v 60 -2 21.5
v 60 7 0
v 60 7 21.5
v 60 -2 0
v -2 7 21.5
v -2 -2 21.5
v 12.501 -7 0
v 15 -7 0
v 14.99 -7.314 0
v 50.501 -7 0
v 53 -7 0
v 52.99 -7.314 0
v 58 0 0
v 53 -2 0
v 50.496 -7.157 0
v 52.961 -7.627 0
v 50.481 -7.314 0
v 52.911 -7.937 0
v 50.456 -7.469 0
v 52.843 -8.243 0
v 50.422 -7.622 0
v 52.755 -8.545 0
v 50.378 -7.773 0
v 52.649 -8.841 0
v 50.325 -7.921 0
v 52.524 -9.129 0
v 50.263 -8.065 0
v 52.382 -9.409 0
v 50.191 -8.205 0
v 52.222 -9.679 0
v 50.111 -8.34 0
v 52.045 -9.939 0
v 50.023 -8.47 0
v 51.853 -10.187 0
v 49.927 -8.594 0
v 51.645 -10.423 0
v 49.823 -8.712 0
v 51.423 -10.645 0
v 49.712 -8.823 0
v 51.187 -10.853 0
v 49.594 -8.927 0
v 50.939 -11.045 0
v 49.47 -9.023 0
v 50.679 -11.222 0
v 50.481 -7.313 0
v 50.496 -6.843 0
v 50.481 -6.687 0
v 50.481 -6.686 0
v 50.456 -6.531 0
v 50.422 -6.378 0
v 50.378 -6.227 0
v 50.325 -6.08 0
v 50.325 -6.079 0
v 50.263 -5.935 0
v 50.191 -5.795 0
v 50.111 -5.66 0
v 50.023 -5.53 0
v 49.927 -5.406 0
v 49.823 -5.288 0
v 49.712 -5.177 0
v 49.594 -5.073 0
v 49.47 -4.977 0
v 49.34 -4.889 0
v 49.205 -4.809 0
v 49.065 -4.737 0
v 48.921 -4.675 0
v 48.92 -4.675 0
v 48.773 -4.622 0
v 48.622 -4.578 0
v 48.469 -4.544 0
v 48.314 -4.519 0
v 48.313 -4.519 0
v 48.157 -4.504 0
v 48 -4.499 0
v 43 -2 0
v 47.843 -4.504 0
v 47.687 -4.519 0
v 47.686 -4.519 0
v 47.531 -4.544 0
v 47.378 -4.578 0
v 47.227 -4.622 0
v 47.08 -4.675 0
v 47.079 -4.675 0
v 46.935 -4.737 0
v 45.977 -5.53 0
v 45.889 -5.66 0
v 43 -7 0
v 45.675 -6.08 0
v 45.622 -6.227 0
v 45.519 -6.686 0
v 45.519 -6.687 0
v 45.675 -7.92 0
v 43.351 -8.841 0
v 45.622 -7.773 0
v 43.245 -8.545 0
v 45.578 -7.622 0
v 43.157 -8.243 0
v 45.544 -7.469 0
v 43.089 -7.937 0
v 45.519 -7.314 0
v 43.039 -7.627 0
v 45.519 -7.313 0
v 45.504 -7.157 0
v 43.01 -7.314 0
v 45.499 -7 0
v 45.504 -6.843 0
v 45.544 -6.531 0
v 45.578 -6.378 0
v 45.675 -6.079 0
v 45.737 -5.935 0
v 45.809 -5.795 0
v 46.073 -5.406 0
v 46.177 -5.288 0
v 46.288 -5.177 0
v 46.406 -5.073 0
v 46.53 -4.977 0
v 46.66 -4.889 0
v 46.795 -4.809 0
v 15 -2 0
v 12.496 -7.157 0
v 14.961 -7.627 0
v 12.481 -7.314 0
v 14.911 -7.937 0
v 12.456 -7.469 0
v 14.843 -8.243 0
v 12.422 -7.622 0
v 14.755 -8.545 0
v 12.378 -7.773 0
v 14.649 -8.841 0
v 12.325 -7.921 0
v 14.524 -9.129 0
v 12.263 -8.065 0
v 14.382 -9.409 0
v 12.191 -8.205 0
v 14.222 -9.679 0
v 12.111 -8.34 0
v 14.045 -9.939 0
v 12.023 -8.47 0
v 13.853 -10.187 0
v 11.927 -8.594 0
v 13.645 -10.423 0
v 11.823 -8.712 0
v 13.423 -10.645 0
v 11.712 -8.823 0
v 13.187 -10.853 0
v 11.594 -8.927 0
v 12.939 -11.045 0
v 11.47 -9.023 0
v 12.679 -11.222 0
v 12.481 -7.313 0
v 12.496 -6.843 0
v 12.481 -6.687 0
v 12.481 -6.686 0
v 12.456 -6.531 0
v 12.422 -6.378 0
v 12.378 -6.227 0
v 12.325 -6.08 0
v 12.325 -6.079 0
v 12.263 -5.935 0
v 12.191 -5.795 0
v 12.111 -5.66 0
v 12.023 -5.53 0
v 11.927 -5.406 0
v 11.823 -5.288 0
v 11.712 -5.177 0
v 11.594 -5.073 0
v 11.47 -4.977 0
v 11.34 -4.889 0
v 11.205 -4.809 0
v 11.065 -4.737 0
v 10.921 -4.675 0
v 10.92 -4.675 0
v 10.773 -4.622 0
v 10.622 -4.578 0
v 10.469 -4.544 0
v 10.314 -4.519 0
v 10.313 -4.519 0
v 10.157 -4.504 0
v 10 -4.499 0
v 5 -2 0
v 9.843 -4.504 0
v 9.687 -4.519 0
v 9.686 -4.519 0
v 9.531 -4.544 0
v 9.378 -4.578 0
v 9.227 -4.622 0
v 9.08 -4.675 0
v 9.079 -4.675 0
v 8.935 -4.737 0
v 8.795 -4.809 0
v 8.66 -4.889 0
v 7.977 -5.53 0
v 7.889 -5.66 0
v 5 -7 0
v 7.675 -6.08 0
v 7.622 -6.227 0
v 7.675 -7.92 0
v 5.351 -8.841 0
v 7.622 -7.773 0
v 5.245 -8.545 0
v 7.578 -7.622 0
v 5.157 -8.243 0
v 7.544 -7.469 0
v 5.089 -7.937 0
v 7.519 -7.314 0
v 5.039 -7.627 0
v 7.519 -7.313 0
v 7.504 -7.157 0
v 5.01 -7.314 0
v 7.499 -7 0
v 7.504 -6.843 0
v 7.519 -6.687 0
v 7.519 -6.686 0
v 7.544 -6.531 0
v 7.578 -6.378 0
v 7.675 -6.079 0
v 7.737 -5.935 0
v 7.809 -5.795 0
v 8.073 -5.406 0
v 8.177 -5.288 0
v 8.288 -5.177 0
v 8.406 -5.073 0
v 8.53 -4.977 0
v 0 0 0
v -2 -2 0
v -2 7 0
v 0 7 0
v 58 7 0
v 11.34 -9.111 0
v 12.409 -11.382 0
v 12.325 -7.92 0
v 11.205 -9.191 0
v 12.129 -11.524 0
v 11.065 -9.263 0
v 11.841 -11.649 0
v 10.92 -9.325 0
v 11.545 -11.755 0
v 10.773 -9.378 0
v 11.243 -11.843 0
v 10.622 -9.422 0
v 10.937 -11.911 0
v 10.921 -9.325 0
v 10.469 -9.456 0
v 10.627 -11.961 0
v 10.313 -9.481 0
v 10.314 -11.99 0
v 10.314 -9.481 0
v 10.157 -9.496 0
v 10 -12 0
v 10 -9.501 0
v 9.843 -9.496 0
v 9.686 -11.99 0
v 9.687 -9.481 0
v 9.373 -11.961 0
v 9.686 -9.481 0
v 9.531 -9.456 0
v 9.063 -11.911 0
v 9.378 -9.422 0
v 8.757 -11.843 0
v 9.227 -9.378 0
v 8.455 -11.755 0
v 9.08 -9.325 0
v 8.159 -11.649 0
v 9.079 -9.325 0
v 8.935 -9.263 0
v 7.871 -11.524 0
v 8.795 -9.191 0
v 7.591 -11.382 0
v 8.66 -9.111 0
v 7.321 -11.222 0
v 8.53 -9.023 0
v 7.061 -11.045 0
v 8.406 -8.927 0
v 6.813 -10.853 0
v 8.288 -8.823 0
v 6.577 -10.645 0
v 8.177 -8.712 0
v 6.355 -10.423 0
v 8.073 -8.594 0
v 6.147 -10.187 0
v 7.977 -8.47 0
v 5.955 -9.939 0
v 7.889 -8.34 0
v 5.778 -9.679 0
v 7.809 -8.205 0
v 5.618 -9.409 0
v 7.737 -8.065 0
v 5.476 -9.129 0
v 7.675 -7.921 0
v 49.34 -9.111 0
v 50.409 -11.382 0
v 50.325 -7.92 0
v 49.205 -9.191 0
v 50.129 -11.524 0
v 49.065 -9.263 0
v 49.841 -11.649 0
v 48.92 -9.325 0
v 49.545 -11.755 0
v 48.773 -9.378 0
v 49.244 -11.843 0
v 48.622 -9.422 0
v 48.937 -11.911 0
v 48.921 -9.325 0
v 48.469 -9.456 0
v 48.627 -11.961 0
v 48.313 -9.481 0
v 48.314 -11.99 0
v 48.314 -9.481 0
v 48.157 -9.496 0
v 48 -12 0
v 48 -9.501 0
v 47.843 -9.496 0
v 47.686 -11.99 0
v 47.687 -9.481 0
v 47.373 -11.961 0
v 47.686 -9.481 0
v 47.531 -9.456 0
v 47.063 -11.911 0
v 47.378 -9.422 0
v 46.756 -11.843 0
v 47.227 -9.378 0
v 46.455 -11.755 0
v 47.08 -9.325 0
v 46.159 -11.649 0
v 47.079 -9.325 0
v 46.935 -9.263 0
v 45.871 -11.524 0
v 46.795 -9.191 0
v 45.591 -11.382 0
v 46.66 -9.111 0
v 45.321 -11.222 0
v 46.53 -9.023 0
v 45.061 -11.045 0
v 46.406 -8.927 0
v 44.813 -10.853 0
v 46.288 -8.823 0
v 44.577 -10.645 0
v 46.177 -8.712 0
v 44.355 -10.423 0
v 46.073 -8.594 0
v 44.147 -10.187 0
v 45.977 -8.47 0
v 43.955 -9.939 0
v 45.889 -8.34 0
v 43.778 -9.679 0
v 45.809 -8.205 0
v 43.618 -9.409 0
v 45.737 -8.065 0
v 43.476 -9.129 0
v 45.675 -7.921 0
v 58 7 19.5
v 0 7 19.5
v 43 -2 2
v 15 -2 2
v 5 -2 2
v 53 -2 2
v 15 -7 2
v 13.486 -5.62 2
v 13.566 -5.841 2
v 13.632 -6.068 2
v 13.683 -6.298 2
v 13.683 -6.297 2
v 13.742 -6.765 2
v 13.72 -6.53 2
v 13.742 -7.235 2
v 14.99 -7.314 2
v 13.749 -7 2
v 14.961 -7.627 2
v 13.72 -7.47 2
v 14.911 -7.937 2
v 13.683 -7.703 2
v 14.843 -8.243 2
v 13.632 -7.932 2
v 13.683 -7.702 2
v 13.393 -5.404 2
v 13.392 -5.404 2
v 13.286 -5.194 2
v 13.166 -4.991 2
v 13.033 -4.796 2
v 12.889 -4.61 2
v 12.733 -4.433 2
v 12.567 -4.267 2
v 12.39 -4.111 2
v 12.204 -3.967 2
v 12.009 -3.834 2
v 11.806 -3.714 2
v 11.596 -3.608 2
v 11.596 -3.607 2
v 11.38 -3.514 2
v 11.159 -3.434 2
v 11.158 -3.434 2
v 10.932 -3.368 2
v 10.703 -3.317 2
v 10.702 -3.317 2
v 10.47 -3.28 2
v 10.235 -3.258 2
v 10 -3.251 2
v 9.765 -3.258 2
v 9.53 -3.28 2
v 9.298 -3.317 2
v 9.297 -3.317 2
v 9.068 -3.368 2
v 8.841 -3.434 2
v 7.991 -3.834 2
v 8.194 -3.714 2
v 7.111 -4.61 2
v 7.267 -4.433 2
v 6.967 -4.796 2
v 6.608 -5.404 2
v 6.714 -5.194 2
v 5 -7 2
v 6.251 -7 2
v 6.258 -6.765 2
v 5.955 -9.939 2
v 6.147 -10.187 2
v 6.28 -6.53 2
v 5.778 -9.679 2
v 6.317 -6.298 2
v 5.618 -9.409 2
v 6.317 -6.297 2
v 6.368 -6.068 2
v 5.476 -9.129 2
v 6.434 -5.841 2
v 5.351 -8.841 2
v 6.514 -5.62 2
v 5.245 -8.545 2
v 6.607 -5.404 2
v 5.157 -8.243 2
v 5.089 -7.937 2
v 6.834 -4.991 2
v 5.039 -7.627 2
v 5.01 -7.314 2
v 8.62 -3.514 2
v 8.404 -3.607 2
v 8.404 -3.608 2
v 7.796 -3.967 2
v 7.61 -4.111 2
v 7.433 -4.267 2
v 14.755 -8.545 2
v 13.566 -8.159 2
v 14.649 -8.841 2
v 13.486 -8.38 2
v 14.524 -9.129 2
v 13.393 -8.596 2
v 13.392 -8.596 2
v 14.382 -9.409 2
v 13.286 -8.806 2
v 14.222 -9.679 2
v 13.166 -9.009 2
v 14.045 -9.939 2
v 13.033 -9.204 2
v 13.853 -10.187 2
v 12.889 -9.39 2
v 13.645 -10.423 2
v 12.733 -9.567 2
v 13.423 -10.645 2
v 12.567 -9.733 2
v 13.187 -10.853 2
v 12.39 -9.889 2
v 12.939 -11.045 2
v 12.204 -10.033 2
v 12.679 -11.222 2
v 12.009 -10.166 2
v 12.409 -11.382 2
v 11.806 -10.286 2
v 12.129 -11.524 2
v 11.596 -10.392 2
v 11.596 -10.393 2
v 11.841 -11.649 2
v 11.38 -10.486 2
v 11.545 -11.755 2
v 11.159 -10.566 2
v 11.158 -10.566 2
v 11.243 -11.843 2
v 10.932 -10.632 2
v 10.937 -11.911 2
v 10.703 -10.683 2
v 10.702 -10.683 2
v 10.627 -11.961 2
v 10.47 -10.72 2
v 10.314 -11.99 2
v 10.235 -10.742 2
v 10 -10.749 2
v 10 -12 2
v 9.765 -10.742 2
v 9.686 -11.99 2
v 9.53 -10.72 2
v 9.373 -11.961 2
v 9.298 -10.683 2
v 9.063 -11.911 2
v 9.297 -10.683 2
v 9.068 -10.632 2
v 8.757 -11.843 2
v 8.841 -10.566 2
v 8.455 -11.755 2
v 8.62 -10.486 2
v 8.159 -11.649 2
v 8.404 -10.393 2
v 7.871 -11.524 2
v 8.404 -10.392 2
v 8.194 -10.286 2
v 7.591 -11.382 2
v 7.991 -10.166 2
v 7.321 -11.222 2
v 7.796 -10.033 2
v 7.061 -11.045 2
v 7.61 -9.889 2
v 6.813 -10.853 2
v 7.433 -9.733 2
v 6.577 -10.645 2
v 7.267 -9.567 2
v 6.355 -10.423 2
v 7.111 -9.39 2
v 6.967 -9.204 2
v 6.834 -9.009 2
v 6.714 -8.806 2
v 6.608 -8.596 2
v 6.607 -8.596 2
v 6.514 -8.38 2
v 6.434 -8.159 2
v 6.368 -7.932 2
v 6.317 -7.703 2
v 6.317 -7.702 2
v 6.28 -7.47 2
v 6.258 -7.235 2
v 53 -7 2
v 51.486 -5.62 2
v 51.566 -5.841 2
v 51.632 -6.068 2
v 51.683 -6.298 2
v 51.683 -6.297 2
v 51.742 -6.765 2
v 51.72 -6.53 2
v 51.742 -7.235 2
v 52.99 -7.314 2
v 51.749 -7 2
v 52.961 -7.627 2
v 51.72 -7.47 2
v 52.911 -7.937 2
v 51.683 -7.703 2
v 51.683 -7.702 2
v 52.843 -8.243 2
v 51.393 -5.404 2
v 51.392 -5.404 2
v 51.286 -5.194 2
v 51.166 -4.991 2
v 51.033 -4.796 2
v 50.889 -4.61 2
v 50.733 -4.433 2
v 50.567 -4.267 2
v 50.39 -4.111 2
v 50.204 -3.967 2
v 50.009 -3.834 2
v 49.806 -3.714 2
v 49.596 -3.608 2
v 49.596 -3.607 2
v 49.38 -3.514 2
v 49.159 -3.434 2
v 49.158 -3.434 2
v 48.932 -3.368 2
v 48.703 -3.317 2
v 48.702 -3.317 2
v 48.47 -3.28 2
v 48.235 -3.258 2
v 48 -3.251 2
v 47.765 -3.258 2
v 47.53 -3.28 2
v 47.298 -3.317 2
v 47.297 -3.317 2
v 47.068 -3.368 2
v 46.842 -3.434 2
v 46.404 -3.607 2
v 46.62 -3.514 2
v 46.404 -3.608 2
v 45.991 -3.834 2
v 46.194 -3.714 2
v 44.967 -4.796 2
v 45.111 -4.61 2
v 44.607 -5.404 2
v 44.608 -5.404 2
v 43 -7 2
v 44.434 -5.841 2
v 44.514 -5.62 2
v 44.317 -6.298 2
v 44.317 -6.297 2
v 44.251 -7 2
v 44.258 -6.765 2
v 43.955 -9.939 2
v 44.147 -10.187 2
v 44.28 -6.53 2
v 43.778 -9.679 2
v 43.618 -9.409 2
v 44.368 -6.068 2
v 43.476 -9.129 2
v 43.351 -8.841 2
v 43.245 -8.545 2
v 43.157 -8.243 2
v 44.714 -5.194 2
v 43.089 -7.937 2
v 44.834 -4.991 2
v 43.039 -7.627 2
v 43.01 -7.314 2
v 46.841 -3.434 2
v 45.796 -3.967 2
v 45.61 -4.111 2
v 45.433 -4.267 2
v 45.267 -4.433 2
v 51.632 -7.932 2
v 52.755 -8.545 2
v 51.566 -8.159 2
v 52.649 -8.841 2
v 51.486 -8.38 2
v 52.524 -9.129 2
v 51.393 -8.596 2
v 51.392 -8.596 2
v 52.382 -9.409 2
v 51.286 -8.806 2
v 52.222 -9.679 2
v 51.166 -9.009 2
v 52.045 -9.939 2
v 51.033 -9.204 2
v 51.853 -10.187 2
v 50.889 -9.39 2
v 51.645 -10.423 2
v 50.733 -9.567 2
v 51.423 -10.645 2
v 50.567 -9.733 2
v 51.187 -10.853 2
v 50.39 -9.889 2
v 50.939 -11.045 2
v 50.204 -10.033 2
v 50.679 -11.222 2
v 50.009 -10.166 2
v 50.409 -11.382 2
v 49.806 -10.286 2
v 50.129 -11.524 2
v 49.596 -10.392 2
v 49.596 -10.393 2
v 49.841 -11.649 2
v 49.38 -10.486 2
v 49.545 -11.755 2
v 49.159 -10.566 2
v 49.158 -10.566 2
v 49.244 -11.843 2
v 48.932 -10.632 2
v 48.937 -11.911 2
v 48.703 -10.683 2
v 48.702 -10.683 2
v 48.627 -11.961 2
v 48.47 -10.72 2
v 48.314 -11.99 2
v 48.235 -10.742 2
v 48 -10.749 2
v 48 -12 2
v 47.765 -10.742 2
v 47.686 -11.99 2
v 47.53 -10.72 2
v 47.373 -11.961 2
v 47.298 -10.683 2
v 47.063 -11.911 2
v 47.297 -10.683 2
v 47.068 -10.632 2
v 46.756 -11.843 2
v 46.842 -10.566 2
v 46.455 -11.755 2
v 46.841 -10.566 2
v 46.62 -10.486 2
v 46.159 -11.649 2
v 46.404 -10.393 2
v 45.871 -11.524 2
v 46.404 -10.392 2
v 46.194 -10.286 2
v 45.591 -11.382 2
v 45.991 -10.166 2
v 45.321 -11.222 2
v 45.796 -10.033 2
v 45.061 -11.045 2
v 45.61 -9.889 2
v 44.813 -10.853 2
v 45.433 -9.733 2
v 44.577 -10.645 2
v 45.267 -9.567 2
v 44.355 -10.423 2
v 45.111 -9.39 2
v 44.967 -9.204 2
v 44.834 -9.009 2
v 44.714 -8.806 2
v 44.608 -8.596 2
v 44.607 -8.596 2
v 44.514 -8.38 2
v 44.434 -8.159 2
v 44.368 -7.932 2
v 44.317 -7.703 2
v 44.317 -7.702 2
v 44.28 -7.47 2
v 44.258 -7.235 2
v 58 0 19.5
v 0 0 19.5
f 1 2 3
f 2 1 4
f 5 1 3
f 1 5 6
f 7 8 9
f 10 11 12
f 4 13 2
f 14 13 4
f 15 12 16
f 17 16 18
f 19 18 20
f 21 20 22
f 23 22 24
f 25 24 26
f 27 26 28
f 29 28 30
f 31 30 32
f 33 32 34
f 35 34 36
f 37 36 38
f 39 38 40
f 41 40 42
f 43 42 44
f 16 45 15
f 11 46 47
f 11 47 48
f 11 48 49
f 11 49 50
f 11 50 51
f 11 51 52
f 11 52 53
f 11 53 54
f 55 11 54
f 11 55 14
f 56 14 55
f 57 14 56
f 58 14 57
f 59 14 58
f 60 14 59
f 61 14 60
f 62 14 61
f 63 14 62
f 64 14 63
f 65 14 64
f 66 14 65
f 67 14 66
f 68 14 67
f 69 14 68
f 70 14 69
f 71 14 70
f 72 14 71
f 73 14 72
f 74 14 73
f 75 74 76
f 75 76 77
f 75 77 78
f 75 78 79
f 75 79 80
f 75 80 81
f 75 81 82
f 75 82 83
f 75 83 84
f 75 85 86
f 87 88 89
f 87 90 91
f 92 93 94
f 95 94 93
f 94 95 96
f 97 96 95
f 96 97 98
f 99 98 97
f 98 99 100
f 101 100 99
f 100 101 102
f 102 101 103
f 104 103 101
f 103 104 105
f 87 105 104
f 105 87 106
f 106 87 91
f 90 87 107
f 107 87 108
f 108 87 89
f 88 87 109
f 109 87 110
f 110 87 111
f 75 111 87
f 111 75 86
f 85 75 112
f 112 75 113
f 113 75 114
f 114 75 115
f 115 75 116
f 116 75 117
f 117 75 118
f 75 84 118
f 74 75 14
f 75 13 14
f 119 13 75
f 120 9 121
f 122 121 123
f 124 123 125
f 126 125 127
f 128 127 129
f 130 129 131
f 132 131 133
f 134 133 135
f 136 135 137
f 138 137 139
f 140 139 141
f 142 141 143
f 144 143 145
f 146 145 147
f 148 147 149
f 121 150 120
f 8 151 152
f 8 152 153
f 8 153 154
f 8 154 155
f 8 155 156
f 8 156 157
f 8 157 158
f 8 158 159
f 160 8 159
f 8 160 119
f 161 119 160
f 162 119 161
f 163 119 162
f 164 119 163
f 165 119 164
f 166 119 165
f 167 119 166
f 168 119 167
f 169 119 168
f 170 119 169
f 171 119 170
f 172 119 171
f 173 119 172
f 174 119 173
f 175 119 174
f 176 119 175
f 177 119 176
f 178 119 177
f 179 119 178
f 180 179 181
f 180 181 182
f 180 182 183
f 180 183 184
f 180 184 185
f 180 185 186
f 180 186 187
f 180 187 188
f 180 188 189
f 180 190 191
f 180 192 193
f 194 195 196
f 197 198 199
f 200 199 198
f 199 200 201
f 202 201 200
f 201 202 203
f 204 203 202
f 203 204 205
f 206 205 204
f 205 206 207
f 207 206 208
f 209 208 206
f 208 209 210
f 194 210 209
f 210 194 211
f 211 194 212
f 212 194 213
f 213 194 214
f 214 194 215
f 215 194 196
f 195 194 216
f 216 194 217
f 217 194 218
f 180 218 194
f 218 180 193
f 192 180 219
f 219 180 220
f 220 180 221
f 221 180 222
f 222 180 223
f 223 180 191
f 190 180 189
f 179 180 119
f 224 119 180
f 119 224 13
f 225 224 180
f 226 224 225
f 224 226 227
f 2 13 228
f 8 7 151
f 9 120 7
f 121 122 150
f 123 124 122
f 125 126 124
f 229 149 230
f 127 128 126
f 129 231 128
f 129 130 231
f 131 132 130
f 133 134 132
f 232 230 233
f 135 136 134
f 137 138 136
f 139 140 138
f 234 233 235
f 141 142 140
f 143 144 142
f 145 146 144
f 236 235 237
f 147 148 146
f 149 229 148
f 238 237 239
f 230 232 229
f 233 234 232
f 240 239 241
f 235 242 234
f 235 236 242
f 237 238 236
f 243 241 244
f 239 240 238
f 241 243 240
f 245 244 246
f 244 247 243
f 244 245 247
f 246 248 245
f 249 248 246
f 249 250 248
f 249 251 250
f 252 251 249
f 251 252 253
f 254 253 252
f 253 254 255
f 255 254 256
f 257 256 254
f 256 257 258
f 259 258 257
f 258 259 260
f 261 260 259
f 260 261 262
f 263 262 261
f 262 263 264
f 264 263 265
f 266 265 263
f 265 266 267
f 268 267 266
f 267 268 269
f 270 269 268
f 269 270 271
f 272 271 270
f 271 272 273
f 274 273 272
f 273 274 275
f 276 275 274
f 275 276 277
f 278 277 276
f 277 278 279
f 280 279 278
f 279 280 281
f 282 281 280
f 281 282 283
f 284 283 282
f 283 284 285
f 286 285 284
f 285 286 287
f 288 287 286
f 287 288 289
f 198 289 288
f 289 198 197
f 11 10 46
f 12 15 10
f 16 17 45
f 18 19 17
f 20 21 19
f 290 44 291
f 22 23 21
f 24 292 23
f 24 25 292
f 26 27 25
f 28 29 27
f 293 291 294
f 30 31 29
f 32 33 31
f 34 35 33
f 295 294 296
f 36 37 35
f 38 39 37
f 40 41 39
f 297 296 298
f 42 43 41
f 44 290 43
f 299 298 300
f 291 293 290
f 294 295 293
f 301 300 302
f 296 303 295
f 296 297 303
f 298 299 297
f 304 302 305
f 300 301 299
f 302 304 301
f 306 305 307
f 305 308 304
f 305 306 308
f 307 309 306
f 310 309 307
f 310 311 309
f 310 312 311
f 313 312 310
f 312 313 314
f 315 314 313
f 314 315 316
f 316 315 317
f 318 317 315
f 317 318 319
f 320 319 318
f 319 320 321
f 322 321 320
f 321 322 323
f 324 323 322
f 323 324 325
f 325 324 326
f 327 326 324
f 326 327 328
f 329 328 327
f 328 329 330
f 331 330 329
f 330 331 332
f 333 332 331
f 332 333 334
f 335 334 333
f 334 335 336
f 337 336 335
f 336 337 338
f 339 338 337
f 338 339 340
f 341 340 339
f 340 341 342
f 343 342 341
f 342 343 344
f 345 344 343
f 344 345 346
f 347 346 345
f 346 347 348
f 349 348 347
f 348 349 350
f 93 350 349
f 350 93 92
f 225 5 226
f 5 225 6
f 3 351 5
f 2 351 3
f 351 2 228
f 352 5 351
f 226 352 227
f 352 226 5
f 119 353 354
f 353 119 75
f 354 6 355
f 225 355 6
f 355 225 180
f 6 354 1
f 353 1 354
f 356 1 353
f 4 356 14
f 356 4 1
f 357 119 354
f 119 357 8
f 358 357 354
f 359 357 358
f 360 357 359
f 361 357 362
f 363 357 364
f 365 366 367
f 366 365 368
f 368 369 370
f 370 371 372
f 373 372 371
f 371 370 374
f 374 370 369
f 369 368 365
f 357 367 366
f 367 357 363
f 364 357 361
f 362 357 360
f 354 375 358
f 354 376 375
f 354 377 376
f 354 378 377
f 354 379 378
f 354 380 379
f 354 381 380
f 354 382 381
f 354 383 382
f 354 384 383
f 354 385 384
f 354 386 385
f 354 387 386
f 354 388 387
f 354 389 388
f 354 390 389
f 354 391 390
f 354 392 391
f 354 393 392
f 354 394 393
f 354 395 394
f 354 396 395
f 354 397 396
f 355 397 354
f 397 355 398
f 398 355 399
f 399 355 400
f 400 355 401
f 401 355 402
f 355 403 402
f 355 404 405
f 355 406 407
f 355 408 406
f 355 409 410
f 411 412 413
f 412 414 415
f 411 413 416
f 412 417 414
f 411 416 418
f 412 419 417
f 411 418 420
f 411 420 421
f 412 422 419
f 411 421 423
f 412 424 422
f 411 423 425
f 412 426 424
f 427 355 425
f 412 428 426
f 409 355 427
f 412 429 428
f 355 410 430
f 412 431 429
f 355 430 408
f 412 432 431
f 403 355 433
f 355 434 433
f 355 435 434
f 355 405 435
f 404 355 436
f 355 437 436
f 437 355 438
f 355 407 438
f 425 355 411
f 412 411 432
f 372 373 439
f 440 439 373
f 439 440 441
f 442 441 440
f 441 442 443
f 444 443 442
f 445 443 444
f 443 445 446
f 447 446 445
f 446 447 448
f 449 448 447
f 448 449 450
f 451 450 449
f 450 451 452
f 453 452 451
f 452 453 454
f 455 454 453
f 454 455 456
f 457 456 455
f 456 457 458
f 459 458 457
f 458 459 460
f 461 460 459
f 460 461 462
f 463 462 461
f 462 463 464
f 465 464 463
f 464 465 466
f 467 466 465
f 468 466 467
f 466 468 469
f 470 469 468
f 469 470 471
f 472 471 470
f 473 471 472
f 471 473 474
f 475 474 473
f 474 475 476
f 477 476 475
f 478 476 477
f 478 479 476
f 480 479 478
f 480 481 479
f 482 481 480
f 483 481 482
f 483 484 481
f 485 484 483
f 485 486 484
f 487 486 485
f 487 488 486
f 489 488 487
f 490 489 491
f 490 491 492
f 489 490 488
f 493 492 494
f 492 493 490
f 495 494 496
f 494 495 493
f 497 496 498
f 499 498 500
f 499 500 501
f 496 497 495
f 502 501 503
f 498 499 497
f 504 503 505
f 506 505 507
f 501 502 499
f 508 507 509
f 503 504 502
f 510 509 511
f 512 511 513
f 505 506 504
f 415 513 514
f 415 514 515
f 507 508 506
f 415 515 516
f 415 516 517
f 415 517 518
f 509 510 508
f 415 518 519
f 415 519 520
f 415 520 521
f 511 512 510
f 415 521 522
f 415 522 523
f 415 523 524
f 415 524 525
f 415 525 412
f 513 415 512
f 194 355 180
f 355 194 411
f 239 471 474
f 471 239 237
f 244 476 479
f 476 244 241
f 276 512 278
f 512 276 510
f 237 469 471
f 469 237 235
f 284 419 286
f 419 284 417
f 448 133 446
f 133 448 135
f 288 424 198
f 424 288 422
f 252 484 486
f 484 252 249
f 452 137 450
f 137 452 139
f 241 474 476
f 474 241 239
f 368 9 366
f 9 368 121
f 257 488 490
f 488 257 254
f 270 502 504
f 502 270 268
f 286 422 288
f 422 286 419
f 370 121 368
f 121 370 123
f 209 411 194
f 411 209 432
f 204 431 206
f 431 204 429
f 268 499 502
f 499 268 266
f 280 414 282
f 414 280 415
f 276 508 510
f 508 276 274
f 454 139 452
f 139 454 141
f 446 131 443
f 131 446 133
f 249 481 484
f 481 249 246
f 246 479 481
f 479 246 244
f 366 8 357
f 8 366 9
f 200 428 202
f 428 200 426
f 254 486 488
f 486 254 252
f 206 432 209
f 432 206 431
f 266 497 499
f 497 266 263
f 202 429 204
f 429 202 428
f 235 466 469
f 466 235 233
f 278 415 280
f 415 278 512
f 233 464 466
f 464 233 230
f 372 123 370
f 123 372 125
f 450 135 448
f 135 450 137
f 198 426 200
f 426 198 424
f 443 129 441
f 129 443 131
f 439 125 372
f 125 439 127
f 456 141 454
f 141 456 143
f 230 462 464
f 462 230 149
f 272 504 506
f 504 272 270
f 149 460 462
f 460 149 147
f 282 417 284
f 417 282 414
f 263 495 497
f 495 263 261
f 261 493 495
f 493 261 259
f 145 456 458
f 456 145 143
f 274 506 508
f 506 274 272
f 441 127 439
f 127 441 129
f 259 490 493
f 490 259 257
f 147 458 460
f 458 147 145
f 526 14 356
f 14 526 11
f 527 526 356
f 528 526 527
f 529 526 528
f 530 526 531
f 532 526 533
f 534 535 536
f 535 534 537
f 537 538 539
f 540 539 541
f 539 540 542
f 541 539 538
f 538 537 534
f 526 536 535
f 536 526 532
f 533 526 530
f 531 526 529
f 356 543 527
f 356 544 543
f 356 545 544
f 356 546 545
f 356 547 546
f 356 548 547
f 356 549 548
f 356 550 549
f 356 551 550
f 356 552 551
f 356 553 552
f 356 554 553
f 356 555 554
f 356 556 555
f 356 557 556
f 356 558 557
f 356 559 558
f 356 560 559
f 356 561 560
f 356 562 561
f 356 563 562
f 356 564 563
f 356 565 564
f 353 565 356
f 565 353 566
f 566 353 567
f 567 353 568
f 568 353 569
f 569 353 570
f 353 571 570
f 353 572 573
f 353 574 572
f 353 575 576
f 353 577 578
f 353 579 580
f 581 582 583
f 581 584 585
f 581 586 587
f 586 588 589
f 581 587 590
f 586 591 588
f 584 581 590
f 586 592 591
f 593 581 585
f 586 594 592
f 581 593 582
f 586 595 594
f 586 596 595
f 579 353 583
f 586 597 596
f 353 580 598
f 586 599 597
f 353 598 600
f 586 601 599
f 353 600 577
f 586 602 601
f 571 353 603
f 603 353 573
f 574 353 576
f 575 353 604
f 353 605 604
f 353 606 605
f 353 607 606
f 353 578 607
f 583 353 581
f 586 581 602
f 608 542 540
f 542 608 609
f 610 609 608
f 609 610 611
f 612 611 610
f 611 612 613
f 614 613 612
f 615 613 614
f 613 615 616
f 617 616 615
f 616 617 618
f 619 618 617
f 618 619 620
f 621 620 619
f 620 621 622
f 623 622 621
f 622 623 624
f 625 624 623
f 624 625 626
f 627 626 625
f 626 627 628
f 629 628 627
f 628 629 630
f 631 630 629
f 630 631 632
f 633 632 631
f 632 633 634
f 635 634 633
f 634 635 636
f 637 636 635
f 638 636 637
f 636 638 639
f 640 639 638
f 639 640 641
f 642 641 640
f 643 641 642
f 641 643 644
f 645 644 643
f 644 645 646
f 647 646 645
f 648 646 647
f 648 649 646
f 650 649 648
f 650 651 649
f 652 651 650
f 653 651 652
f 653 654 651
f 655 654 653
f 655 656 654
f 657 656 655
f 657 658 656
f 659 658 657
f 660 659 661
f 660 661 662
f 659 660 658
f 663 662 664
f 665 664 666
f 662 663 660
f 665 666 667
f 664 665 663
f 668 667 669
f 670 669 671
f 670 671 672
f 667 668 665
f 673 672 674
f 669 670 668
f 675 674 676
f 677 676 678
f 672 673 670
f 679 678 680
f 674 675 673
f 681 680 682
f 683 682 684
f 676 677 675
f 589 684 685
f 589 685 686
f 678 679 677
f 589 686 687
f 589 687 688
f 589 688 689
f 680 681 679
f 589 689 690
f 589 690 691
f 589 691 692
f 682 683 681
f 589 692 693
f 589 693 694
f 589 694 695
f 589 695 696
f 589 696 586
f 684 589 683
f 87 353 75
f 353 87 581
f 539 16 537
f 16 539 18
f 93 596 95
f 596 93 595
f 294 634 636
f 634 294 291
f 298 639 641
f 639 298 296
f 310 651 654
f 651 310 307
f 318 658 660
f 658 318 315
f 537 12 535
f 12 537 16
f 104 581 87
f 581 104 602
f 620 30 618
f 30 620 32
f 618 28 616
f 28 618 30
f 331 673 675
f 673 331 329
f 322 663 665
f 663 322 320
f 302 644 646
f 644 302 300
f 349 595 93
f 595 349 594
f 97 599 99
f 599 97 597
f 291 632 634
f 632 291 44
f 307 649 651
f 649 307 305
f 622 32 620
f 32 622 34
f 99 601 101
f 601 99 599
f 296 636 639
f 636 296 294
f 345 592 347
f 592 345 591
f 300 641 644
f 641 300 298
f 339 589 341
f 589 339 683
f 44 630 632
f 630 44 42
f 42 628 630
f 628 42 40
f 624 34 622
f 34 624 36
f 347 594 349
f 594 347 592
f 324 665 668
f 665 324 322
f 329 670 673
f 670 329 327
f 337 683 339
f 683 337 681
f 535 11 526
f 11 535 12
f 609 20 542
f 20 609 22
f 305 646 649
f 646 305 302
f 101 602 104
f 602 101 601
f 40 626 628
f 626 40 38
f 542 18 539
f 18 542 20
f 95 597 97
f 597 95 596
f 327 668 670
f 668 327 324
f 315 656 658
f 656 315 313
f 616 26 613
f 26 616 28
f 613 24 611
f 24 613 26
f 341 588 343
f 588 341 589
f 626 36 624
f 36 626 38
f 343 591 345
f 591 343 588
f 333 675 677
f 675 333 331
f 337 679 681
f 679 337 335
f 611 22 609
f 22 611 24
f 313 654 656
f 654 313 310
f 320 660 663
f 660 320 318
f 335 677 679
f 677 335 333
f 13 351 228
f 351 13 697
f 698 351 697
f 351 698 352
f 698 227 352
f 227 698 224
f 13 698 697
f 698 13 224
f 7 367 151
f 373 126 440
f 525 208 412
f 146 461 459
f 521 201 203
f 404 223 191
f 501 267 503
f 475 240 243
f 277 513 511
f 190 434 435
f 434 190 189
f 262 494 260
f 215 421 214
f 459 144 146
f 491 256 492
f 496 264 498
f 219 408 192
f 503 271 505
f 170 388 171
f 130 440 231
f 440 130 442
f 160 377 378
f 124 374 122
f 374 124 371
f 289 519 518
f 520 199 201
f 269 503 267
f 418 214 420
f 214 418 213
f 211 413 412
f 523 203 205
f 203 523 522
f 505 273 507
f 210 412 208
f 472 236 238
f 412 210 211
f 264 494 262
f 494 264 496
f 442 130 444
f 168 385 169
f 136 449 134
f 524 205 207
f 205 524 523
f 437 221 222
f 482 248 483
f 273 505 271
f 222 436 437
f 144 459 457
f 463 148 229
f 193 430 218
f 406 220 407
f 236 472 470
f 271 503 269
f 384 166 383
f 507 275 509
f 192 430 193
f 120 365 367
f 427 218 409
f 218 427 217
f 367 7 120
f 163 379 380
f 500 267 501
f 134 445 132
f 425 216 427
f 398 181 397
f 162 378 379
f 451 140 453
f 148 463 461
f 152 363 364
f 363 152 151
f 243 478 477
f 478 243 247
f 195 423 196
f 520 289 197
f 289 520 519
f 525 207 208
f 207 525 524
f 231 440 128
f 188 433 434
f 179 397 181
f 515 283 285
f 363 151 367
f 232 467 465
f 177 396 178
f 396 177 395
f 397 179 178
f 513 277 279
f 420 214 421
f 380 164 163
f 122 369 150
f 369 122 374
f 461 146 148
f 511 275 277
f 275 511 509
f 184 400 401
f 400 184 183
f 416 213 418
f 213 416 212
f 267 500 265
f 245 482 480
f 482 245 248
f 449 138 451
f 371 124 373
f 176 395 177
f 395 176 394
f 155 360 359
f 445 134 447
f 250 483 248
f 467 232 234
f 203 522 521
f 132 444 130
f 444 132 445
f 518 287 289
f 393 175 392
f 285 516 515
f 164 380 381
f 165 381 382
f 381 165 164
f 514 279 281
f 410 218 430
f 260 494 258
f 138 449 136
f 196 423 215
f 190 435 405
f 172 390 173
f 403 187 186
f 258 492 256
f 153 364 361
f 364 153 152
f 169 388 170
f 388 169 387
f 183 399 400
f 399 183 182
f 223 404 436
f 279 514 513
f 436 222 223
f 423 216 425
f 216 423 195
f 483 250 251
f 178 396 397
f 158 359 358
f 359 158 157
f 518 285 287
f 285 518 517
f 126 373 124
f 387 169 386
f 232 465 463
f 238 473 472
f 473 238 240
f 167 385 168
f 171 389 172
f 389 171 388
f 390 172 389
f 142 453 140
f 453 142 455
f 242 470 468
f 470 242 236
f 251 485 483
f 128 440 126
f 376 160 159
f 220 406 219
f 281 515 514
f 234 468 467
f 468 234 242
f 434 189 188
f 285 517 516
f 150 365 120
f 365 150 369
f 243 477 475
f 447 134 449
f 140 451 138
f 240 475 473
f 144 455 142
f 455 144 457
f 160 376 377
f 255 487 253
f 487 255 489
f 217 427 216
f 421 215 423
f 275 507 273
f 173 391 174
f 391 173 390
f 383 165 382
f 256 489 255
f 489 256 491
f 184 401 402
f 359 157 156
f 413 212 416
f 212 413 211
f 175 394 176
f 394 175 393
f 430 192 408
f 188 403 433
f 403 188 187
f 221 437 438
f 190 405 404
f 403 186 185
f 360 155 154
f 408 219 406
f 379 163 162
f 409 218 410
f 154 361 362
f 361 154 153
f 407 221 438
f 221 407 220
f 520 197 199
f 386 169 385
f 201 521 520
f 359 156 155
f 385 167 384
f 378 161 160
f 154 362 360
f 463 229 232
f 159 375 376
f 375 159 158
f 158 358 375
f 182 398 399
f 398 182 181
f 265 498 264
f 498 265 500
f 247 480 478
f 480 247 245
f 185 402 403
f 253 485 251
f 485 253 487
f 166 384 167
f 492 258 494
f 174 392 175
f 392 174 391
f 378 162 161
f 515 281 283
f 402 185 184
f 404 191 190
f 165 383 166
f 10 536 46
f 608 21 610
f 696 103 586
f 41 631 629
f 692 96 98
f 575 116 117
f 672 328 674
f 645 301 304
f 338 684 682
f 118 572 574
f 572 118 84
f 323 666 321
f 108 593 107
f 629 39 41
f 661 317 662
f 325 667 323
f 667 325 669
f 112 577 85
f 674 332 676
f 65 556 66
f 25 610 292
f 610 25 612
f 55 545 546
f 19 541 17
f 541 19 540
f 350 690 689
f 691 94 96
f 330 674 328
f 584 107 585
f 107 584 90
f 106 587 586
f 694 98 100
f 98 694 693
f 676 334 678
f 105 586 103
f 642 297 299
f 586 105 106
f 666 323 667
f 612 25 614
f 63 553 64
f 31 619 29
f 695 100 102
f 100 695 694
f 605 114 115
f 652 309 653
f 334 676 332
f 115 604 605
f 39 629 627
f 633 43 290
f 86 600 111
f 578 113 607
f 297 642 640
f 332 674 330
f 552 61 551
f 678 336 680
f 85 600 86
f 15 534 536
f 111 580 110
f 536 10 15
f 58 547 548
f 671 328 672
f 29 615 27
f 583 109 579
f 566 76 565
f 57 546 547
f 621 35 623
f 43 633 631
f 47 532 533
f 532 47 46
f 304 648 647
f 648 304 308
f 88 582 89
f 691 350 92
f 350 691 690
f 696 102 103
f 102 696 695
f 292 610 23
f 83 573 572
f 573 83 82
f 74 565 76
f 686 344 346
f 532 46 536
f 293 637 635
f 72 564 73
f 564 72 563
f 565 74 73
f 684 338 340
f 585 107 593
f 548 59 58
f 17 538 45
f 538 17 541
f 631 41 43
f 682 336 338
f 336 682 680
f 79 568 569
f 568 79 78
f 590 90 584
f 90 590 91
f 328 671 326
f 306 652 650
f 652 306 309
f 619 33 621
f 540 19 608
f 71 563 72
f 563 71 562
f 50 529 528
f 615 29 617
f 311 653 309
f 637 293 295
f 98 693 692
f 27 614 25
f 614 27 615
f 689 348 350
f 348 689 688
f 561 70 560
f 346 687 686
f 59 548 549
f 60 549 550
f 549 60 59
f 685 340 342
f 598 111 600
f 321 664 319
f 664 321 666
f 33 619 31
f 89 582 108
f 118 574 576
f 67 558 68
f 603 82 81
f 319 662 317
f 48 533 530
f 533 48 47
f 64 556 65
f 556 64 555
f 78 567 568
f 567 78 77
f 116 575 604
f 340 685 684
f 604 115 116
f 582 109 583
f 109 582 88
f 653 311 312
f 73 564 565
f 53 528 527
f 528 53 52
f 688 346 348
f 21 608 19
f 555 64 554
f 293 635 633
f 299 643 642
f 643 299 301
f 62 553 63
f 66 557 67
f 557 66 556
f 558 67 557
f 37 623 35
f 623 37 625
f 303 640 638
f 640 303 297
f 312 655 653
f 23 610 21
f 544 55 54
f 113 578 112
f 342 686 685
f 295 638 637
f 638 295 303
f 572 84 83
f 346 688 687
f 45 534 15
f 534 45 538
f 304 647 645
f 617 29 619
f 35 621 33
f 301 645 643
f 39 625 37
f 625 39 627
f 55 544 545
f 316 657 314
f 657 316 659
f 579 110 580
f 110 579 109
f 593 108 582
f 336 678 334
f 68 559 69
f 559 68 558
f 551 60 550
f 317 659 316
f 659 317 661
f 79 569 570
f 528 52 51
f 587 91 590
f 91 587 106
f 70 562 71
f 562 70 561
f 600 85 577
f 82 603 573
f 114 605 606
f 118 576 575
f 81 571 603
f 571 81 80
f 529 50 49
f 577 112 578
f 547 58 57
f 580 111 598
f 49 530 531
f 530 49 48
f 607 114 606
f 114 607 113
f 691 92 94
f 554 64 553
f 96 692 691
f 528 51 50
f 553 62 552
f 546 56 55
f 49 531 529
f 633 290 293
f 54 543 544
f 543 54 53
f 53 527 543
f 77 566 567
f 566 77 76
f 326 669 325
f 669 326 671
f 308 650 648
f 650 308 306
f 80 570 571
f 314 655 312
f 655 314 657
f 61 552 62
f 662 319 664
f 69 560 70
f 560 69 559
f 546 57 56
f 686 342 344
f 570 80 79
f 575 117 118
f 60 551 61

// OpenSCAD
//
// ktRack1
//
//


gap1 = 0.001;
gap2 = 0.002;

panel_thick = 2;

X = 58;
Y = 19.5;


   
difference()
{
    union()
    {
        translate([-panel_thick, -panel_thick, 0]) cube([X+panel_thick*2, 7+panel_thick, Y+panel_thick]);
        translate([5, -5-panel_thick, 0]) cube([10, 5, panel_thick]);
        translate([5+10/2, -5-panel_thick, 0]) cylinder(  panel_thick, d=10, $fn=100);
        translate([X-5-10, -5-panel_thick, 0]) cube([10, 5, panel_thick]);
        translate([X-5-10/2, -5-panel_thick, 0]) cylinder(  panel_thick, d=10, $fn=100);
    }
    cube([X, 100, Y]);
    translate([5+10/2, -5-panel_thick, 0-gap1]) cylinder(  panel_thick+gap2, d1=5, d2=7.5, $fn=100);
    translate([X-5-10/2, -5-panel_thick, 0-gap1]) cylinder(  panel_thick+gap2, d1=5, d2=7.5, $fn=100);
}
